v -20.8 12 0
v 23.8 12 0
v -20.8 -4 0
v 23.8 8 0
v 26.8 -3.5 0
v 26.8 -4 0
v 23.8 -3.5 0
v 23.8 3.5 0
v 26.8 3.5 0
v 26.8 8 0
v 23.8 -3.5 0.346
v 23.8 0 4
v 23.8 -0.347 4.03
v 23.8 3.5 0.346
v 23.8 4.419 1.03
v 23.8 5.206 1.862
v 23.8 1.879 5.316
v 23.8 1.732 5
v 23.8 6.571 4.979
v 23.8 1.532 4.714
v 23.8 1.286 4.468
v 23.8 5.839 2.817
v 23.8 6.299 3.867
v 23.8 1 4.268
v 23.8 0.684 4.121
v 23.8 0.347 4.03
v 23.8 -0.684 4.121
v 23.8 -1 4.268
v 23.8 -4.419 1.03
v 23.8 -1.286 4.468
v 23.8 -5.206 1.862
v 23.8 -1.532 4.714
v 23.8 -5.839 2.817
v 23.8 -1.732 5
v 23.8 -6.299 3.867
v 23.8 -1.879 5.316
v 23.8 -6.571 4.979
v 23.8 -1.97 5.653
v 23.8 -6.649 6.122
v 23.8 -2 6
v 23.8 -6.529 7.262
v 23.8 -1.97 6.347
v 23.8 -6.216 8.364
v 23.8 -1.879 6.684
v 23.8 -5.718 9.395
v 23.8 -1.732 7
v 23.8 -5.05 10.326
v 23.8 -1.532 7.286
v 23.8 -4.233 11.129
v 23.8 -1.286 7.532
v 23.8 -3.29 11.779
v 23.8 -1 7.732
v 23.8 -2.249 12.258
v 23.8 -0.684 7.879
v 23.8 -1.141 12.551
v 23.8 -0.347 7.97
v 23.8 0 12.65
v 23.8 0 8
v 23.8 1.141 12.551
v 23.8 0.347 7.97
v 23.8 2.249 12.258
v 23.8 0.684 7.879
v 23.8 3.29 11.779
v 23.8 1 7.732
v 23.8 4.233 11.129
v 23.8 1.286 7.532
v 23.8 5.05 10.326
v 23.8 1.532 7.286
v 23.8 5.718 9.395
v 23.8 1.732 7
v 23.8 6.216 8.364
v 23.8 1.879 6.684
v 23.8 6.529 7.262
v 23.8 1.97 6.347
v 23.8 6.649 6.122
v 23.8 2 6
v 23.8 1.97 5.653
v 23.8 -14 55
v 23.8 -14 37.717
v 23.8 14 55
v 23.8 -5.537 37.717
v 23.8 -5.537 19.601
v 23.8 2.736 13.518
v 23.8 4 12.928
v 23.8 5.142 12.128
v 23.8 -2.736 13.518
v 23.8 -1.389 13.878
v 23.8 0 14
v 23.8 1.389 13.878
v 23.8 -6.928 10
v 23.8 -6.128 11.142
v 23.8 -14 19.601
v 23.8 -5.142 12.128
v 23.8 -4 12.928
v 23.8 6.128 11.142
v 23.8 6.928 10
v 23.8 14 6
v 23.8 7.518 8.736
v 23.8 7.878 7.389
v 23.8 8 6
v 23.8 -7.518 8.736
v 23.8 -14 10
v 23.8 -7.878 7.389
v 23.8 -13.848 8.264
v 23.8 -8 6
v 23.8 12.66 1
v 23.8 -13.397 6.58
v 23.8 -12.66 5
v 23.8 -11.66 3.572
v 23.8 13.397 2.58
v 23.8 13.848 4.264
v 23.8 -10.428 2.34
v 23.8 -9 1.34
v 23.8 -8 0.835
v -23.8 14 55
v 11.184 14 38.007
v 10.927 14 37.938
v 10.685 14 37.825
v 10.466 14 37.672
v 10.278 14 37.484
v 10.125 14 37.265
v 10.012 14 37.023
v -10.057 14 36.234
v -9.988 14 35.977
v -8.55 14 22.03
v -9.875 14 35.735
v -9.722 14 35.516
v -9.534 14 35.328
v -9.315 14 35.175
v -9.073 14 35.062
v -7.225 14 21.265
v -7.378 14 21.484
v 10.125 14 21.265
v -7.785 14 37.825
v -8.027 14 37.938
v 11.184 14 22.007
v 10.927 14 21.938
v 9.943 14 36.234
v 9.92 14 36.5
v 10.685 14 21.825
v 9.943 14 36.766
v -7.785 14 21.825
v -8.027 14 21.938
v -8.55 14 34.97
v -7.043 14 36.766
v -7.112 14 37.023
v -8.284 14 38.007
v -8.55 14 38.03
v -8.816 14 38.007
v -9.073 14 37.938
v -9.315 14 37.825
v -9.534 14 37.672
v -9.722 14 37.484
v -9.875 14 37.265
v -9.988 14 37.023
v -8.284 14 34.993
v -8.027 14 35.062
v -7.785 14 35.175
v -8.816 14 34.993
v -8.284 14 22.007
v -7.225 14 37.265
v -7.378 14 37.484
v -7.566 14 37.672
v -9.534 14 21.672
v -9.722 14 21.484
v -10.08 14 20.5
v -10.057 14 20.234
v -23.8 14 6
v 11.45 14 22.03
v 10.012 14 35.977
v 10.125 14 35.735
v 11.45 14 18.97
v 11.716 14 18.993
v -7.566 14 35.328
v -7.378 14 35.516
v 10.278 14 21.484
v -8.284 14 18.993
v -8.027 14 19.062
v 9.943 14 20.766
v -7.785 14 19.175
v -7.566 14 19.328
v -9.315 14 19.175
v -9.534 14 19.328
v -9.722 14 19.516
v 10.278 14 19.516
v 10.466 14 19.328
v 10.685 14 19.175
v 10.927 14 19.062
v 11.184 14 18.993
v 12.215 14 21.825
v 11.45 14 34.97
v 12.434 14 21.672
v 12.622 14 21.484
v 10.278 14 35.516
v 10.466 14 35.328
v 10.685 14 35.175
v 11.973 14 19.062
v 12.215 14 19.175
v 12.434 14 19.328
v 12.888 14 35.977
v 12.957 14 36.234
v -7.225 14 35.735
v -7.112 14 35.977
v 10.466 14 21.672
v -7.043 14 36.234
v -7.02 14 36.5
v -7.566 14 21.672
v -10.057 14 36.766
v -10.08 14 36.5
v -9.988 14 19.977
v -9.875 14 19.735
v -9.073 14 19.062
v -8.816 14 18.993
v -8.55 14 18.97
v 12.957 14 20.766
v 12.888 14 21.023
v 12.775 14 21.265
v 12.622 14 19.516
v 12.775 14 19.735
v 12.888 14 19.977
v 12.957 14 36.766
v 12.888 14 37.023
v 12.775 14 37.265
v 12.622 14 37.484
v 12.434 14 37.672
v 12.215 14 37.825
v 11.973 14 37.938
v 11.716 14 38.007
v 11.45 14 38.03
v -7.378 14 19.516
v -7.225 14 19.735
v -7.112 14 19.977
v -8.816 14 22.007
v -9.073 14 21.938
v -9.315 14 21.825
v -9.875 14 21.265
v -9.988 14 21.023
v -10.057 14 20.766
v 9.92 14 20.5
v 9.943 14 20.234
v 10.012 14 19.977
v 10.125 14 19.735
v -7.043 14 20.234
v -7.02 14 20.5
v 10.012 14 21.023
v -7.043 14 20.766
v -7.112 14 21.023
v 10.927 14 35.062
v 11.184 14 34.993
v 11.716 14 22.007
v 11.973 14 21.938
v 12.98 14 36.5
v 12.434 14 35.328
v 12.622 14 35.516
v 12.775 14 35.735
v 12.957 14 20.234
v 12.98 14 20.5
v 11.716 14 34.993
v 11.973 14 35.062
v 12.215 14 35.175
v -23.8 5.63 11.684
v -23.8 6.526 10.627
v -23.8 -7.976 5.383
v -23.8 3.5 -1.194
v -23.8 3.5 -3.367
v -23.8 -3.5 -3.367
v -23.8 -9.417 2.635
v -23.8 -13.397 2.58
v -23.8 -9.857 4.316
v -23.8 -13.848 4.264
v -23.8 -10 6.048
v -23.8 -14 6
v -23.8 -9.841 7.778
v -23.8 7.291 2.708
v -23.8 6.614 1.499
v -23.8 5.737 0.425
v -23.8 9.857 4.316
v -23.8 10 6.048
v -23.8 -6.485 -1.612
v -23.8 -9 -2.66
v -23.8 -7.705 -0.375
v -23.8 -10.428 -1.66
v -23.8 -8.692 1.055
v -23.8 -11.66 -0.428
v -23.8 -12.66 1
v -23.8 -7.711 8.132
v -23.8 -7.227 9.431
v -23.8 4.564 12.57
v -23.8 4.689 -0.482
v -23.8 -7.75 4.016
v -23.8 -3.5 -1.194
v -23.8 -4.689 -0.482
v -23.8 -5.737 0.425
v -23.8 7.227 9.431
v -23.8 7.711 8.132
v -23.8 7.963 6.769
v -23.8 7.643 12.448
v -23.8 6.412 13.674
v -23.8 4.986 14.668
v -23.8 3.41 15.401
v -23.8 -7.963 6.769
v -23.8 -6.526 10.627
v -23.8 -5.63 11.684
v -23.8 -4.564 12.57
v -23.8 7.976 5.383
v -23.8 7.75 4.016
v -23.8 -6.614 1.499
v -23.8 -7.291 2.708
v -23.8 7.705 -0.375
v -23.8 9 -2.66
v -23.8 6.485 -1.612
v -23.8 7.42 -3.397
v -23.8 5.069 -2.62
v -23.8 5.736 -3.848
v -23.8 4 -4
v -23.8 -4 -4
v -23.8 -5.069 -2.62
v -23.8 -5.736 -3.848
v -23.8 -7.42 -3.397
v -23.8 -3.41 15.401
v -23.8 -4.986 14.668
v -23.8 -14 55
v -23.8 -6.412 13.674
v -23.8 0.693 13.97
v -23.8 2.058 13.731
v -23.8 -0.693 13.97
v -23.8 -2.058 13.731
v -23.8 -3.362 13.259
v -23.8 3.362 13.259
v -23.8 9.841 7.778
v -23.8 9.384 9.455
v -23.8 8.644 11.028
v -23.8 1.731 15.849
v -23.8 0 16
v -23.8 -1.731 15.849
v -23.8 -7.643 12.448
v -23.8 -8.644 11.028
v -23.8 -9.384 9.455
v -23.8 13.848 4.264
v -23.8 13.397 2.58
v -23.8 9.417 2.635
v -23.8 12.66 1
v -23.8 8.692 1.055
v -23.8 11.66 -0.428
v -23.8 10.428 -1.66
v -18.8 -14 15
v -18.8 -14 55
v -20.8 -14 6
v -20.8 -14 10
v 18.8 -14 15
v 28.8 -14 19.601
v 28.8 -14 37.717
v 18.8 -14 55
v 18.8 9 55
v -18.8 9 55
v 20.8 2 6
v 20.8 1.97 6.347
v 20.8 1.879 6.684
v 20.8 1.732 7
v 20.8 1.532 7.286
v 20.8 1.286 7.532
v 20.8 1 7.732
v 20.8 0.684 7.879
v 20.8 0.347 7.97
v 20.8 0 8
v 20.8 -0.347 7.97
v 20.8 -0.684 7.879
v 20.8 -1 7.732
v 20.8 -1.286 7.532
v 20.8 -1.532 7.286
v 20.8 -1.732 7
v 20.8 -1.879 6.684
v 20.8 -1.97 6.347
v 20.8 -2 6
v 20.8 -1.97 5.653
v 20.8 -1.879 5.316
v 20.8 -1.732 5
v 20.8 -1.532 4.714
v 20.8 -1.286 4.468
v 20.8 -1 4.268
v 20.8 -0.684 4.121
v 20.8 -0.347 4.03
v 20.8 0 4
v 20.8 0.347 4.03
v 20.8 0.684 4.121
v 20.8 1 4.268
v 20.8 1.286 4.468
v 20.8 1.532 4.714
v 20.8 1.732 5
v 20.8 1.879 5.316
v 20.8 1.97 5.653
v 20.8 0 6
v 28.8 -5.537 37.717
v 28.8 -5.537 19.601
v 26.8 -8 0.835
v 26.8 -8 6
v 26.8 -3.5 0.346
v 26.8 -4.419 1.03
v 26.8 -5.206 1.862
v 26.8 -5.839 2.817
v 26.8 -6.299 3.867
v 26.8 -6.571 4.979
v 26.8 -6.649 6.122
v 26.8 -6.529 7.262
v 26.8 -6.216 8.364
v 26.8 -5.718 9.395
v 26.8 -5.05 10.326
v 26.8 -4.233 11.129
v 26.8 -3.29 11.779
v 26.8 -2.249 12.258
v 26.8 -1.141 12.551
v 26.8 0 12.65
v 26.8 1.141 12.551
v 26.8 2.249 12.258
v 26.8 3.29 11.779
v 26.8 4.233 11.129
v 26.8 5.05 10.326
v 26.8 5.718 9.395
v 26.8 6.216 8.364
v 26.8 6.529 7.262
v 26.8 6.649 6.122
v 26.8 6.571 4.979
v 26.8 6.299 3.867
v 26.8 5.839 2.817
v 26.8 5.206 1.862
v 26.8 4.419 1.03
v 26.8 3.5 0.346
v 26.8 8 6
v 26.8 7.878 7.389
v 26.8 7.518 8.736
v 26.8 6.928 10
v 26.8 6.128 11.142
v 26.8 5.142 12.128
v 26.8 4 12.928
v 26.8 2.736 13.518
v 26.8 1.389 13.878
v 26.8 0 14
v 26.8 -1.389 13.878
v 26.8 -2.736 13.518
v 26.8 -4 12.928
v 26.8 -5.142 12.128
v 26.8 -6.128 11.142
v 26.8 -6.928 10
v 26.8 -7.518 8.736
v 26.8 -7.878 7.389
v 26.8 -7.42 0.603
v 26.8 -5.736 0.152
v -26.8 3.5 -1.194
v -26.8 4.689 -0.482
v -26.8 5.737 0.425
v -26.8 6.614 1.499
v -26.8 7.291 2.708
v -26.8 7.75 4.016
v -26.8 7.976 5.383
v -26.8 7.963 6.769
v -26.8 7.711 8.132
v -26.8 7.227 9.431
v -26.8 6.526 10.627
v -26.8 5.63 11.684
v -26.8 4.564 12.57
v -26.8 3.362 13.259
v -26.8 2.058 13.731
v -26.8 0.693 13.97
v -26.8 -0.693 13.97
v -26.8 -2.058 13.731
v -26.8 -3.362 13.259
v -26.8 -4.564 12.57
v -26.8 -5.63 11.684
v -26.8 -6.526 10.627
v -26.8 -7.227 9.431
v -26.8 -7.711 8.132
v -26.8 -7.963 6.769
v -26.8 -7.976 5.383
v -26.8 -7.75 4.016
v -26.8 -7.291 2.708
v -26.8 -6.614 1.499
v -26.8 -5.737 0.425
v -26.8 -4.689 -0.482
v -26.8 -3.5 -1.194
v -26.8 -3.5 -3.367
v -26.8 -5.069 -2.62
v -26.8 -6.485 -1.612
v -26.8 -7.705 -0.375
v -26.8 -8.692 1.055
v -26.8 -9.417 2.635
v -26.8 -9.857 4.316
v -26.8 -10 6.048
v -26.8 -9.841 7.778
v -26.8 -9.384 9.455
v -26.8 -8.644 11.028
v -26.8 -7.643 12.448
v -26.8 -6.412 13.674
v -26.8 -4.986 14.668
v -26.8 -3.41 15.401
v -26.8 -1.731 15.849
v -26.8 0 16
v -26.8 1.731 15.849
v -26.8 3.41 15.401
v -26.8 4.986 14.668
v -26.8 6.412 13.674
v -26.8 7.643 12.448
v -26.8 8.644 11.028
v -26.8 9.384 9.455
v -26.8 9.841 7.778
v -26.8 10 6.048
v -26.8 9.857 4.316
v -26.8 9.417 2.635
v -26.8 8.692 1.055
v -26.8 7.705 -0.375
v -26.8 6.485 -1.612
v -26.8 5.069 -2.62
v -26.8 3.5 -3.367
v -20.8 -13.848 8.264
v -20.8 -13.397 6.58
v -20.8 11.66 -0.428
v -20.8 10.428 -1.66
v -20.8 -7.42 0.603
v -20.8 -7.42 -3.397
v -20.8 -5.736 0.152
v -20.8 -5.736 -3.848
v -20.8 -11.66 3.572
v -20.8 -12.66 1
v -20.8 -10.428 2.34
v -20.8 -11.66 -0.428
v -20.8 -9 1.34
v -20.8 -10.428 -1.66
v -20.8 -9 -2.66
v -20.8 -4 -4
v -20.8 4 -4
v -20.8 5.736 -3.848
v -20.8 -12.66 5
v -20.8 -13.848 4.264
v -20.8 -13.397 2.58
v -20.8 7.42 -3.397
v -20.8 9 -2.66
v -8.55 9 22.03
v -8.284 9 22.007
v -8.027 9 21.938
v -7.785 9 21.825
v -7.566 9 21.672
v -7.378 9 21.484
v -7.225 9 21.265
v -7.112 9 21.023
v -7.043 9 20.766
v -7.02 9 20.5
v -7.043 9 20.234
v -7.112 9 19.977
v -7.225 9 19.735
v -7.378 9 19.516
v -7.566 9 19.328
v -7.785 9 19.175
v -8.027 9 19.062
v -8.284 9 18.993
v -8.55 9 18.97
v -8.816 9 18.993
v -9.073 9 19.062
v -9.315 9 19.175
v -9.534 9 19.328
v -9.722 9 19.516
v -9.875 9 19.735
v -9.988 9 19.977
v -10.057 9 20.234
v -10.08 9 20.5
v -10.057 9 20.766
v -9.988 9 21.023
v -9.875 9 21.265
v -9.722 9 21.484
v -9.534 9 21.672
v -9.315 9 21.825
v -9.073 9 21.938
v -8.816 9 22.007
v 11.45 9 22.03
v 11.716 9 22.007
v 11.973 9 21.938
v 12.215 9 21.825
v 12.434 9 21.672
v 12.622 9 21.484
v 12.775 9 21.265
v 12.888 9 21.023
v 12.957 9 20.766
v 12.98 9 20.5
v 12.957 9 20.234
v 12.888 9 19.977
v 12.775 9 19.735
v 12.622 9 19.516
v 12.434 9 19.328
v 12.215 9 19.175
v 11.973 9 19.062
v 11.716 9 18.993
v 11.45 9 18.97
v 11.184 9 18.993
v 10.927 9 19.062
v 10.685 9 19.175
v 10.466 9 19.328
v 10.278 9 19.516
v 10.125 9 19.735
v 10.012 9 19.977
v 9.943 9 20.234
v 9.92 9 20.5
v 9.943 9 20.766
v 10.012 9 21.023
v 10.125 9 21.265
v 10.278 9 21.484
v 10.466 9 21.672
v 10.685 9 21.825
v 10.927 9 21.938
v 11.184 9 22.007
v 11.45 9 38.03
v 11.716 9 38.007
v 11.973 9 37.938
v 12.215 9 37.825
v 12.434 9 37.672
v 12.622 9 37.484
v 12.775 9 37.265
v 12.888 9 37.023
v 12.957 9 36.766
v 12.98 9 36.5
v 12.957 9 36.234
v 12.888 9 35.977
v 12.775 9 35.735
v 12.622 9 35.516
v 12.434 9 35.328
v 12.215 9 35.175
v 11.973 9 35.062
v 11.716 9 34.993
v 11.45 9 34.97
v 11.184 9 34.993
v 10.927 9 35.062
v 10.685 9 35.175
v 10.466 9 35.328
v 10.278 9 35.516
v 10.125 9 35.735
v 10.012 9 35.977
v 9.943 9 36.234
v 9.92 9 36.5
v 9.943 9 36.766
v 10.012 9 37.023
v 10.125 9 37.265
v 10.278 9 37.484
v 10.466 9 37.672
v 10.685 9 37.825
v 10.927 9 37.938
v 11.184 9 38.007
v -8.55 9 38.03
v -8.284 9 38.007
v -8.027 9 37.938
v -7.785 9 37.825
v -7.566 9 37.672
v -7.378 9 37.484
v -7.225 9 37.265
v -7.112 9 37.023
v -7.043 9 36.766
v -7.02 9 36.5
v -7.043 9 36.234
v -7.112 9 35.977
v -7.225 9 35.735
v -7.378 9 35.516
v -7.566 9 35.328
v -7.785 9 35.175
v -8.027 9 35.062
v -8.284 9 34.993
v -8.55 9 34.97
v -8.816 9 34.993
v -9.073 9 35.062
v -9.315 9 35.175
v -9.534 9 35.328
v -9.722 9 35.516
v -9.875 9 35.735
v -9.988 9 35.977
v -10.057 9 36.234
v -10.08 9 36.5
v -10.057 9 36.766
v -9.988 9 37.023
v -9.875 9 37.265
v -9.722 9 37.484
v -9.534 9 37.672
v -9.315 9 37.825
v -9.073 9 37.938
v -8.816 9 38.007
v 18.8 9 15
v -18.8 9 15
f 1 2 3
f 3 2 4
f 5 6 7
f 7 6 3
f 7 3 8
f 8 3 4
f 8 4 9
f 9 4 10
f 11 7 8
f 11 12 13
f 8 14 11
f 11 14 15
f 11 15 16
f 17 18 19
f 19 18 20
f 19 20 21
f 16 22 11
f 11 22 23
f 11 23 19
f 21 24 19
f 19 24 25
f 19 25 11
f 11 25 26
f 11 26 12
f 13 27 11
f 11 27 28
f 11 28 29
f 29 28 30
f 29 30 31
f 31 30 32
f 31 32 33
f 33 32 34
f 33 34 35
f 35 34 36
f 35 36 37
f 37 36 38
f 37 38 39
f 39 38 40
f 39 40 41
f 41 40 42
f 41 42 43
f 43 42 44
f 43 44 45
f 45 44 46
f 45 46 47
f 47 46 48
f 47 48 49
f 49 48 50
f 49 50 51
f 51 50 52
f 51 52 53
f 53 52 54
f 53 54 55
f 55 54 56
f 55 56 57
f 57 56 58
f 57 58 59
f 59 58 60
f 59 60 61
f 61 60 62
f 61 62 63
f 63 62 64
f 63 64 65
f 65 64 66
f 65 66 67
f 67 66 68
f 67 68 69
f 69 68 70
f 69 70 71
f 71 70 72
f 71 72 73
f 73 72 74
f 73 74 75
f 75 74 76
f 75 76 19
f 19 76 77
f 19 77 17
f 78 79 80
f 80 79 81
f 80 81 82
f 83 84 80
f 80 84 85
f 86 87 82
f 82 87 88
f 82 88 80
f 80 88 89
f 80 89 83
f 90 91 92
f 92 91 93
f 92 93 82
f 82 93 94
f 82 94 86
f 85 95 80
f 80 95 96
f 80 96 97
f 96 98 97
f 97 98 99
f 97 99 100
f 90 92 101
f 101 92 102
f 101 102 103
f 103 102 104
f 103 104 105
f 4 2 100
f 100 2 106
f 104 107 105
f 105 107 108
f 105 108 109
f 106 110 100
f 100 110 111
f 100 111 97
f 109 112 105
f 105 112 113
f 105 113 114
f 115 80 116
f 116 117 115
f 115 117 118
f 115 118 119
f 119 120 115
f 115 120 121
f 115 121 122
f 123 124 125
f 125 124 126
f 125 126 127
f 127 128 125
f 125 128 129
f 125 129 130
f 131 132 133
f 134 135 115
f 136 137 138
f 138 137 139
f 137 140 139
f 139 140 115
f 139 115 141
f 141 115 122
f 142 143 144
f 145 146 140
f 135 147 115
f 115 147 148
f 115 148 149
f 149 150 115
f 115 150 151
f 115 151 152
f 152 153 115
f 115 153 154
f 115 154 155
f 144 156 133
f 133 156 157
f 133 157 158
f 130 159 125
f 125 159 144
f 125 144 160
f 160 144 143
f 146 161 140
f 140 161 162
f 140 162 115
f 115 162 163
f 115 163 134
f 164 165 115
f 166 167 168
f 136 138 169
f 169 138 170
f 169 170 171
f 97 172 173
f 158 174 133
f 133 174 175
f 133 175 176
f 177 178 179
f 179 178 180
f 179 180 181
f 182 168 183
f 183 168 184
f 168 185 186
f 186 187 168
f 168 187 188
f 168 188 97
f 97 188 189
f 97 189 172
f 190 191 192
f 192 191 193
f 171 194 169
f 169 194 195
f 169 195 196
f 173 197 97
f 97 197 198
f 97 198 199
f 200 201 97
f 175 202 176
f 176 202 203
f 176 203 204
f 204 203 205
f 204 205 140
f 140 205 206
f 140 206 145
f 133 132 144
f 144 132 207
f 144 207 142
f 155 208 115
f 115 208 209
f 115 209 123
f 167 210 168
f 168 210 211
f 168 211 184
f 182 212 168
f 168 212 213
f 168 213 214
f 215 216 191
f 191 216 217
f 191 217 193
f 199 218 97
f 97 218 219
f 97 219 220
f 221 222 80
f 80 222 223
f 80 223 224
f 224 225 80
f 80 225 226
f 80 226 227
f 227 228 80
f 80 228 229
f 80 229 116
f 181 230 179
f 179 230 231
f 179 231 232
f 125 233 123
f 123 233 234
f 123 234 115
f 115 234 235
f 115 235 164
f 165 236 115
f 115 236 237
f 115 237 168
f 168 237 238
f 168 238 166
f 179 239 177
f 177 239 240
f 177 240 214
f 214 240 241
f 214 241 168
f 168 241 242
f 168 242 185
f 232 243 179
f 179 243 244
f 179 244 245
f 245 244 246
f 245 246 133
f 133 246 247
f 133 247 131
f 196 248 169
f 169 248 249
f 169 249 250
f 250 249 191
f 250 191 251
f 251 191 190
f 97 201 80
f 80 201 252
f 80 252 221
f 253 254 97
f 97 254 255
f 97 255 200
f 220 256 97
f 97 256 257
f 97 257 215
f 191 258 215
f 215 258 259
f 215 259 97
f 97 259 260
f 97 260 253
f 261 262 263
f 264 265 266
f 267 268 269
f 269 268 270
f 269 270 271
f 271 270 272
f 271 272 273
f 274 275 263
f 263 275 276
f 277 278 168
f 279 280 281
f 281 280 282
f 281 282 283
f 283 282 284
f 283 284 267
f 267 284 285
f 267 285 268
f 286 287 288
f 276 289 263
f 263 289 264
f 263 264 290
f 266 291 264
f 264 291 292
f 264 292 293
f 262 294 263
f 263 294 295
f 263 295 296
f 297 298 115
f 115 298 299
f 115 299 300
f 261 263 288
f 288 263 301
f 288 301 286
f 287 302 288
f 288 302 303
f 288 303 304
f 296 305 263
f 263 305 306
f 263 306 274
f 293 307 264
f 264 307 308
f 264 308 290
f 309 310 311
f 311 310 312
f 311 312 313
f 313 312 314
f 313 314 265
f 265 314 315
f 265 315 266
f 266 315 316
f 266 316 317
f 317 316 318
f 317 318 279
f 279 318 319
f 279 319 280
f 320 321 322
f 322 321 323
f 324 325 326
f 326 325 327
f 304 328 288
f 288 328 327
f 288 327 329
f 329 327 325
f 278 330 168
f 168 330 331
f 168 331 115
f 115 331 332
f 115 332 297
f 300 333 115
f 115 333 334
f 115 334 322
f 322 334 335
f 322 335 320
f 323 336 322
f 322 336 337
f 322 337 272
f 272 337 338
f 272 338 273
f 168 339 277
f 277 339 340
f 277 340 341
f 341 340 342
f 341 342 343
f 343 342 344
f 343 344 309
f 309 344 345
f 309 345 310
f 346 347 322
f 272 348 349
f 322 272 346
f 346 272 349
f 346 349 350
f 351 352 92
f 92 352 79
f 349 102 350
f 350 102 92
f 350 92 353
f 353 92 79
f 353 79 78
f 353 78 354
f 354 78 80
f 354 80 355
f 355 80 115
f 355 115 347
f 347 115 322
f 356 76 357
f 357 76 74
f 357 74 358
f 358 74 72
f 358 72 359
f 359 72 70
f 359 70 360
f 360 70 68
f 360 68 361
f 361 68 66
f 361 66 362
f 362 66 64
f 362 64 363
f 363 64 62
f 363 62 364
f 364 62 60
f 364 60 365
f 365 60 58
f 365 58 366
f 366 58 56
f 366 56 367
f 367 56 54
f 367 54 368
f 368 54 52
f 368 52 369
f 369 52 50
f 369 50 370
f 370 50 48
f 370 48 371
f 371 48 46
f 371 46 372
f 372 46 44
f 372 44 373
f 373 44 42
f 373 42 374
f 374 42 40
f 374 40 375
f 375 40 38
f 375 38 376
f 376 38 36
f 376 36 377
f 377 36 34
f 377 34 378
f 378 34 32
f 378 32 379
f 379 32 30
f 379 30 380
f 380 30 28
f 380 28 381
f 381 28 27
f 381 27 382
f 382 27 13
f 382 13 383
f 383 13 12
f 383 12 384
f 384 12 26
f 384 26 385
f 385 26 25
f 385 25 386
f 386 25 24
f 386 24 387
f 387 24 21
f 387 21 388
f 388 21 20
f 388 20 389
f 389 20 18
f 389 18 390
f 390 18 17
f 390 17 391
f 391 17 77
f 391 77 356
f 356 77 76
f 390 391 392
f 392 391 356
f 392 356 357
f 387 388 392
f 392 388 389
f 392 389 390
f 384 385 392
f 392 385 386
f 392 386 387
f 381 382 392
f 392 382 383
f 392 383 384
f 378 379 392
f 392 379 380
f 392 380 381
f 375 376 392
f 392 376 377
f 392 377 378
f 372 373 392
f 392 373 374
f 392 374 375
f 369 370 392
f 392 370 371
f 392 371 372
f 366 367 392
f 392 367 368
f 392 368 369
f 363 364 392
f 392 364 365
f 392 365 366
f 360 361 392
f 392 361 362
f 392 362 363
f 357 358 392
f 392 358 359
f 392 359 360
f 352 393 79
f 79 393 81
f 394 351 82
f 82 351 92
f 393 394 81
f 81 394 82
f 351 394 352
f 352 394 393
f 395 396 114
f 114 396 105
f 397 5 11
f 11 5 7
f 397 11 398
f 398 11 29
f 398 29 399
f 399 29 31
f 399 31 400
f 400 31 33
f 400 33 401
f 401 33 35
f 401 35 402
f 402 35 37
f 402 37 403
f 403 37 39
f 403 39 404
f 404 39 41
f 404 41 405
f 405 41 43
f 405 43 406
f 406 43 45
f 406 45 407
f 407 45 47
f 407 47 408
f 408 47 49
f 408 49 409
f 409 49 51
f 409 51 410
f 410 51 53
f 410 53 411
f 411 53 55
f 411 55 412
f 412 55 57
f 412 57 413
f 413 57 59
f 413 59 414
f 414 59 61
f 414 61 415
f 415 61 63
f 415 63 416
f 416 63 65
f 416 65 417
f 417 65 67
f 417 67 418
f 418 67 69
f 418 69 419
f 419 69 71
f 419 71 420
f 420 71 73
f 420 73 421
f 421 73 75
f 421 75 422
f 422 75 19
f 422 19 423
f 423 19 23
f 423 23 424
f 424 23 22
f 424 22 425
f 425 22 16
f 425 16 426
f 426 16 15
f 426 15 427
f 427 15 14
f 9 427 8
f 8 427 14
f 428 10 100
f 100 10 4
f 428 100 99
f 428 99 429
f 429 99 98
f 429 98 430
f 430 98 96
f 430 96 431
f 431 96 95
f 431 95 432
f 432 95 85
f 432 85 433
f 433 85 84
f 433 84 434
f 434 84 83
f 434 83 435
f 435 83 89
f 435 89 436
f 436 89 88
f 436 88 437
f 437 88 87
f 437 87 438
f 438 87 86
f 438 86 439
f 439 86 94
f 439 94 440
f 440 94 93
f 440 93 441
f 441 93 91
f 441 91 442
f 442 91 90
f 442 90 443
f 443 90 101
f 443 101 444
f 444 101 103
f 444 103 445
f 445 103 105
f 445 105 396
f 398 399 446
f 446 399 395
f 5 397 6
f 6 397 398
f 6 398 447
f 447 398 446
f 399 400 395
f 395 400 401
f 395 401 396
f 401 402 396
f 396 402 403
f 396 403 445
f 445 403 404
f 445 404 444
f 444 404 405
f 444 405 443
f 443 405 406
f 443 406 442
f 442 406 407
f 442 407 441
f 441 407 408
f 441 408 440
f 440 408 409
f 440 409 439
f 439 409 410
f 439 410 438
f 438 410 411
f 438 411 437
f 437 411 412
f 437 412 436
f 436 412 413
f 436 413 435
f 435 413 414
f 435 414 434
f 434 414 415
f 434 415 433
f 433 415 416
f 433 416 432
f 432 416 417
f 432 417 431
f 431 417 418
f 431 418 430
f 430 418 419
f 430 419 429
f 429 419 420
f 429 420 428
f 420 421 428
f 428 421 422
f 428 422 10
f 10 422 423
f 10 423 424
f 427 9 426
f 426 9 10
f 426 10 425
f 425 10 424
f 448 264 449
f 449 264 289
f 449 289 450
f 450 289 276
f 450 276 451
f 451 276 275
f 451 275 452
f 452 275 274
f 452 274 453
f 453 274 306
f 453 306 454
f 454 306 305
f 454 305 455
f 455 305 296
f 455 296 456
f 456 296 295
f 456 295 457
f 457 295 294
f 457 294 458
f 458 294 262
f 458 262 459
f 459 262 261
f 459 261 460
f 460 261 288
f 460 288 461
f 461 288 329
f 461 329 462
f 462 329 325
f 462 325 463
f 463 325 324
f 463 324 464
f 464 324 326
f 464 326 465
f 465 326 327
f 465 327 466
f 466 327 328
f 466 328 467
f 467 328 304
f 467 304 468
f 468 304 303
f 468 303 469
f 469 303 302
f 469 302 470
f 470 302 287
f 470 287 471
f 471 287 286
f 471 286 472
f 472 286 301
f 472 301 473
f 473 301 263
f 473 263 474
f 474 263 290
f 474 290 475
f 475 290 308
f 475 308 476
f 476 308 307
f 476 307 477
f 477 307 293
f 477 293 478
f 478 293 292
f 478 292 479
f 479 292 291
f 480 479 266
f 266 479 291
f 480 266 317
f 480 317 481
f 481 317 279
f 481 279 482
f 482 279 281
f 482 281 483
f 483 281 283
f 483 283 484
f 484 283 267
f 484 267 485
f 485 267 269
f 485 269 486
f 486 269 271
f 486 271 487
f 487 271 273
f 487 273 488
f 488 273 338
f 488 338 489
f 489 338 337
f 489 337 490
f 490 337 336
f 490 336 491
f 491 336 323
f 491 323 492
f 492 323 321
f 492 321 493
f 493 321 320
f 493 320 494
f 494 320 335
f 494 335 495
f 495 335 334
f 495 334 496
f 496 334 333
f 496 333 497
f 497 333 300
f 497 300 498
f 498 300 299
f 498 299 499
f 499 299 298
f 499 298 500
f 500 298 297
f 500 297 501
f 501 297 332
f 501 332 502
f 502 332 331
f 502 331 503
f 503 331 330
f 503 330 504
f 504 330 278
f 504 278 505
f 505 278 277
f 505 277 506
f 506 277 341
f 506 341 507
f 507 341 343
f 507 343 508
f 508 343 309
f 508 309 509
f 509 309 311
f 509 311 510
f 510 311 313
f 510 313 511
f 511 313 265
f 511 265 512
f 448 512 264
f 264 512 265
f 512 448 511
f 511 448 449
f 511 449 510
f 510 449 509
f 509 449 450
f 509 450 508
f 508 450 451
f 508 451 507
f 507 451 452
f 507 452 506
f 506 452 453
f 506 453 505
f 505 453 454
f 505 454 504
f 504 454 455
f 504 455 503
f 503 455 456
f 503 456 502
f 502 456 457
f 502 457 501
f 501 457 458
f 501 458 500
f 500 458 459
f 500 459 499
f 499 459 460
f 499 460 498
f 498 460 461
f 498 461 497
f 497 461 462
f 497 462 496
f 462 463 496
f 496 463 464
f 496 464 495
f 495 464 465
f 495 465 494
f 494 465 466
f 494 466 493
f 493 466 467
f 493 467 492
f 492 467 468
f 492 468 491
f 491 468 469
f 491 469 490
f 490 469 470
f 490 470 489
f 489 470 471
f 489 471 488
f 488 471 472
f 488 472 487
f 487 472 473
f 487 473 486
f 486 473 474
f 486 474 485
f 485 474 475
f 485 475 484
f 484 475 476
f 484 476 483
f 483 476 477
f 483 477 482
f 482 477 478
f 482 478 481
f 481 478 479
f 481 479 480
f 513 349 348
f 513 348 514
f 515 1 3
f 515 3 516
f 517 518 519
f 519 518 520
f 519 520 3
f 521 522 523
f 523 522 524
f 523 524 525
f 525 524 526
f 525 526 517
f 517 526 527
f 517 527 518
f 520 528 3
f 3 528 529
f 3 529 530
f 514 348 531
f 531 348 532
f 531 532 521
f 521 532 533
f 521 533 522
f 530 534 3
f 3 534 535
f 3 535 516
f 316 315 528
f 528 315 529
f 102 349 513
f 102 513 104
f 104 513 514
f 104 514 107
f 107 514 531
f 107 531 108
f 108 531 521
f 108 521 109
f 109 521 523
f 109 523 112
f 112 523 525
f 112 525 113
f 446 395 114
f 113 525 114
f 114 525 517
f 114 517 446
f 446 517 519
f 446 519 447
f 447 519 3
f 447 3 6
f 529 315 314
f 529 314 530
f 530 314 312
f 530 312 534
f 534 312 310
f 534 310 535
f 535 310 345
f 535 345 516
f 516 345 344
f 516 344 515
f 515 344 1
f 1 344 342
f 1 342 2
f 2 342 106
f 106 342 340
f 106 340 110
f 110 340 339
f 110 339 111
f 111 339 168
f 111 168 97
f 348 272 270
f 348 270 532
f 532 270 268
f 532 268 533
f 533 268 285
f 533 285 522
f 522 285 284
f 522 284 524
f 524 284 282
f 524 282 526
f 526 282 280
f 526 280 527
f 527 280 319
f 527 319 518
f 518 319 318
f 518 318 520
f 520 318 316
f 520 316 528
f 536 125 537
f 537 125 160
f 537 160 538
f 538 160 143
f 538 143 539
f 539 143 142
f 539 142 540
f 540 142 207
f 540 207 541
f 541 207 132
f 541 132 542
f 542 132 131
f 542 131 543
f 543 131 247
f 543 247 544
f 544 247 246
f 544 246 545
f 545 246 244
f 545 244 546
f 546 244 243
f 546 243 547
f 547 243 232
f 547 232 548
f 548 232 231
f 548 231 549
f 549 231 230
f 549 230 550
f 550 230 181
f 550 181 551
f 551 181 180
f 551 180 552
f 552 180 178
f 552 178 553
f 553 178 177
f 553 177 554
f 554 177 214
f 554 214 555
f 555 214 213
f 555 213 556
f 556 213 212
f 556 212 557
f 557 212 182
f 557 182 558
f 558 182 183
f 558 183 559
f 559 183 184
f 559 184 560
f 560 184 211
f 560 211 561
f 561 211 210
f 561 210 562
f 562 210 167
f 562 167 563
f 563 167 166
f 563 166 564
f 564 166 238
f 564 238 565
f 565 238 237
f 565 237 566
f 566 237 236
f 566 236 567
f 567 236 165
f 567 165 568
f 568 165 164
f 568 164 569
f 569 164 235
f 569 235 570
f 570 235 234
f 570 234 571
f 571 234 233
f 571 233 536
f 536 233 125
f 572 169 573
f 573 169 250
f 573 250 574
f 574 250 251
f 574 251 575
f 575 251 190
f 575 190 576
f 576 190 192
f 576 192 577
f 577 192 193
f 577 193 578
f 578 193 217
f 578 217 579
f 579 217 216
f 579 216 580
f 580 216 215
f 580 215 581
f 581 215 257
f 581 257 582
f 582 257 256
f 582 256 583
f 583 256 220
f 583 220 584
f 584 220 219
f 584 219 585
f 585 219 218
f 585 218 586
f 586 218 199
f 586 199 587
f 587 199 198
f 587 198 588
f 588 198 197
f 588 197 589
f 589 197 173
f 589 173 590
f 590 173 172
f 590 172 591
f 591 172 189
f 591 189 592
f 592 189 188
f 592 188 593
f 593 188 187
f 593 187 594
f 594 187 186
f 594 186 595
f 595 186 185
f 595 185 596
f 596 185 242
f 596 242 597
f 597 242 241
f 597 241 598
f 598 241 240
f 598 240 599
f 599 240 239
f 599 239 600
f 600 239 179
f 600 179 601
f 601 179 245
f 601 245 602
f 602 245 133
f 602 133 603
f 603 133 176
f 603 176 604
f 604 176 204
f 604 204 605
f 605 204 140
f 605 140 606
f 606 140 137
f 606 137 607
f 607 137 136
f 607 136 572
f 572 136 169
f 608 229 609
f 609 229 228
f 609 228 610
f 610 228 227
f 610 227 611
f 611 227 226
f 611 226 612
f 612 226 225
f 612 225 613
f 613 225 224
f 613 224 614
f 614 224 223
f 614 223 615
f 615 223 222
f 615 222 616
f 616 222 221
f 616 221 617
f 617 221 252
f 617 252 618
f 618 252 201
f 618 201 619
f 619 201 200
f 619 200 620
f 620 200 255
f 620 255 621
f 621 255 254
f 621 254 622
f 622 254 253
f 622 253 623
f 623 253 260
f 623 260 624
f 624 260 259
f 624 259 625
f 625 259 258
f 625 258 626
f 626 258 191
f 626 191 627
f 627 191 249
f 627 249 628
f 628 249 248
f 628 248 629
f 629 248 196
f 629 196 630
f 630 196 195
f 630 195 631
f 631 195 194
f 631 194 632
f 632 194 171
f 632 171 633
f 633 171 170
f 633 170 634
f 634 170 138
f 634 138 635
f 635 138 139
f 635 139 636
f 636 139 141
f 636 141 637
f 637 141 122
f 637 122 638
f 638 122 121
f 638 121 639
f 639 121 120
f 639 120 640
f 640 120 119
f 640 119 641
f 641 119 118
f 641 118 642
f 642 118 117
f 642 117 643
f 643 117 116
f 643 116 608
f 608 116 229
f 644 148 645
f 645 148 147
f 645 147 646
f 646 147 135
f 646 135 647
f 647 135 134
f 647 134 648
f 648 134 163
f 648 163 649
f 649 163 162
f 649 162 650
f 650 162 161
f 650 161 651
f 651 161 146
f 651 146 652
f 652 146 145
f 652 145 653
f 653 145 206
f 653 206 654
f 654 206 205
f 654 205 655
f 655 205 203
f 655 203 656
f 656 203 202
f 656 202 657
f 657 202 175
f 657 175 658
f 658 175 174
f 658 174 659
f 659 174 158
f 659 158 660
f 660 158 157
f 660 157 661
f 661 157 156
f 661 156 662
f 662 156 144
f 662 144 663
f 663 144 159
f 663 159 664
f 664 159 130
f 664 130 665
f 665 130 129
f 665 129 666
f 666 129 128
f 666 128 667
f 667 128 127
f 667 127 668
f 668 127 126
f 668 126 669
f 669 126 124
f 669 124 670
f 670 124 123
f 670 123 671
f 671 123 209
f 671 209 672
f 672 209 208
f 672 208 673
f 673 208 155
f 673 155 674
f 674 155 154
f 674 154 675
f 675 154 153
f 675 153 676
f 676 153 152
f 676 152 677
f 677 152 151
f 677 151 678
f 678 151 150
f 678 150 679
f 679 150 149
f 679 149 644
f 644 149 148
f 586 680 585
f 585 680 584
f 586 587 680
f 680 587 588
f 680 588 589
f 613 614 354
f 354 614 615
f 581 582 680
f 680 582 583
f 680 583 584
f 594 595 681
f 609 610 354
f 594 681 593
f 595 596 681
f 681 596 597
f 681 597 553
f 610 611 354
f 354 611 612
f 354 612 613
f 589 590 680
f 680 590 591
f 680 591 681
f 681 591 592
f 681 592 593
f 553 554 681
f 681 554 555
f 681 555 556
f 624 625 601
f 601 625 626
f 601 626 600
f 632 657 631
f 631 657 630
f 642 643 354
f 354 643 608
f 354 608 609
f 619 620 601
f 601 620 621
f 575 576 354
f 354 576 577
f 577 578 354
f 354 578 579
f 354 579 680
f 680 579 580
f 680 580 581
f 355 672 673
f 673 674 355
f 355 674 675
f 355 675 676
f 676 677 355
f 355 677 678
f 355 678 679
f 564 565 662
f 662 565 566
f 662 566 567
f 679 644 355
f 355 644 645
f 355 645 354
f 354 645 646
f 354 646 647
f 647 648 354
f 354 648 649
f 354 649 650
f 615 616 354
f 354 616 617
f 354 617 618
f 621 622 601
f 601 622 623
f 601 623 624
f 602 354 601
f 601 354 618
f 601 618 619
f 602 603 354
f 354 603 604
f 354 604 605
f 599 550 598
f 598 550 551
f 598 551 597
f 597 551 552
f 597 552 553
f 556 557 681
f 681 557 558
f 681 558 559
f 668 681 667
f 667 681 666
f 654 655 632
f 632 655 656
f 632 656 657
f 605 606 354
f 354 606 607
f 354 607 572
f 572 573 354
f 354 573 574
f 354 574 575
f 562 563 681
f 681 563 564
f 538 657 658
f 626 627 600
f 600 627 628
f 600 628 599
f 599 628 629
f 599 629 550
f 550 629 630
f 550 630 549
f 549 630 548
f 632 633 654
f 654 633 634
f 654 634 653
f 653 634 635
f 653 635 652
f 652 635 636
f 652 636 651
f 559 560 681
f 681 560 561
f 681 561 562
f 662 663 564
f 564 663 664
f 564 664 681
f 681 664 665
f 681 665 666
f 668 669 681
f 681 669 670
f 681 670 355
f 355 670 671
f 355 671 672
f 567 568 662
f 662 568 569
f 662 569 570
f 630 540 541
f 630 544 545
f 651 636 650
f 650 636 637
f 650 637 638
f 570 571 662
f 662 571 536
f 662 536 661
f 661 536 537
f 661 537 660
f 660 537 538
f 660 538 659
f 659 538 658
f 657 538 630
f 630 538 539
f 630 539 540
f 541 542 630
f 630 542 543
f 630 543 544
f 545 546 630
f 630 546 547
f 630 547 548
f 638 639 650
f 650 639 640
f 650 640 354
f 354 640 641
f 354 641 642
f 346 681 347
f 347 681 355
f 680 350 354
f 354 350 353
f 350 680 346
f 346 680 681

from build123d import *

# Parameters (mm, degrees)
SKETCH1_W           = 47.6
SKETCH1_H           = 28
BOSS_EXTRUDE1_DEPTH = 55
SKETCH3_R           = 2
CUT_EXTRUDE1_DEPTH  = 3
SKETCH4_W           = 18.116069914
SKETCH4_H           = 8.463303816
BOSS_EXTRUDE2_DEPTH = 5
BOSS_EXTRUDE4_DEPTH = 3
BOSS_EXTRUDE5_DEPTH = 3
SKETCH8_W           = 3
SKETCH8_H           = 28
BOSS_EXTRUDE7_DEPTH = 4
FILLET1_R           = 10
FILLET2_R           = 10
SKETCH9_R           = 1.530150167
CUT_EXTRUDE2_DEPTH  = 69.106093707
SKETCH10_W          = 37.6
SKETCH10_H          = 23
CUT_EXTRUDE4_DEPTH  = 40


with BuildPart() as part:
    # Sketch1 → Boss-Extrude1 (new body)
    with BuildSketch(Plane.XY):
        Rectangle(SKETCH1_W, SKETCH1_H)
    extrude(amount=BOSS_EXTRUDE1_DEPTH)

    # Sketch3 → Cut-Extrude1 (cut)
    with BuildSketch(Plane(origin=(23.8, 0, 0), x_dir=(0, 0, -1), z_dir=(1, 0, 0))):
        with Locations(Location((-6, 0, 0), (0, 0, 90))):
            Circle(SKETCH3_R)
    extrude(amount=-CUT_EXTRUDE1_DEPTH, mode=Mode.SUBTRACT)

    # Sketch4 → Boss-Extrude2 (add)
    with BuildSketch(Plane(origin=(23.8, 0, 0), x_dir=(0, 0, -1), z_dir=(1, 0, 0))):
        with Locations((-28.659392832, -9.768348092)):
            Rectangle(SKETCH4_W, SKETCH4_H)
    extrude(amount=BOSS_EXTRUDE2_DEPTH)

    # Sketch5 → Boss-Extrude4 (add)
    with BuildSketch(Plane(origin=(23.8, 0, 0), x_dir=(0, 0, -1), z_dir=(1, 0, 0))):
        with BuildLine():
            Line((-0.345576953, 3.5), (0, 3.5))
            Line((0, 3.5), (0, 8))
            Line((0, 8), (-6, 8))
            ThreePointArc((-6, 8), (-14, 0), (-6, -8))
            Line((-6, -8), (0, -8))
            Line((0, -8), (0, -3.5))
            Line((0, -3.5), (-0.345576953, -3.5))
            ThreePointArc((-0.345576953, -3.5), (-12.65, 0), (-0.345576953, 3.5))
        make_face()
    extrude(amount=BOSS_EXTRUDE4_DEPTH)

    # Sketch6 → Boss-Extrude5 (add)
    with BuildSketch(Plane.ZY.offset(23.8)):
        with BuildLine():
            Line((0, 8), (0, 5.291502622))
            ThreePointArc((0, 5.291502622), (8.828427125, 7.483314774), (14, 0))
            ThreePointArc((14, 0), (8.828427125, -7.483314774), (0, -5.291502622))
            Line((0, -5.291502622), (0, -8))
            ThreePointArc((0, -8), (10.472135955, -8.94427191), (16, 0))
            ThreePointArc((16, 0), (10.472135955, 8.94427191), (0, 8))
        make_face()
        with BuildLine():
            ThreePointArc((0, -5.291502622), (-0.657410327, -4.436089239), (-1.193747285, -3.5))
            Line((-1.193747285, -3.5), (-3.367496998, -3.5))
            ThreePointArc((-3.367496998, -3.5), (-2.006403125, -5.991452996), (0, -8))
            Line((0, -8), (0, -5.291502622))
        make_face()
        with BuildLine():
            Line((-3.367496998, 3.5), (-1.193747285, 3.5))
            ThreePointArc((-1.193747285, 3.5), (-0.657410327, 4.436089239), (0, 5.291502622))
            Line((0, 5.291502622), (0, 8))
            ThreePointArc((0, 8), (-2.006403125, 5.991452996), (-3.367496998, 3.5))
        make_face()
    extrude(amount=BOSS_EXTRUDE5_DEPTH)

    # Sketch8 → Boss-Extrude7 (add)
    with BuildSketch(Plane(origin=(0, 0, 0), x_dir=(-1, 0, 0), z_dir=(0, 0, -1))):
        with Locations((22.3, 0)):
            Rectangle(SKETCH8_W, SKETCH8_H)
    extrude(amount=BOSS_EXTRUDE7_DEPTH)

    # Fillet1
    fillet1_edges = [part.edges().sort_by_distance(p)[0] for p in [
        (-22.3, 14, -4),
        (1.5, -14, 0),
    ]]
    fillet(fillet1_edges, radius=FILLET1_R)

    # Fillet2
    fillet2_edges = [part.edges().sort_by_distance(p)[0] for p in [
        (-22.3, -14, -4),
    ]]
    fillet(fillet2_edges, radius=FILLET2_R)

    # Sketch9 → Cut-Extrude2 (cut, through all)
    with BuildSketch(Plane(origin=(0, 14, 0), x_dir=(1, 0, 0), z_dir=(0, 1, 0))):
        with Locations(Location((-8.55, -20.5, 0), (0, 0, 270))):
            Circle(SKETCH9_R)
        with Locations(Location((11.45, -20.5, 0), (0, 0, 270))):
            Circle(SKETCH9_R)
        with Locations(Location((11.45, -36.5, 0), (0, 0, 270))):
            Circle(SKETCH9_R)
        with Locations(Location((-8.55, -36.5, 0), (0, 0, 270))):
            Circle(SKETCH9_R)
    extrude(amount=-CUT_EXTRUDE2_DEPTH, mode=Mode.SUBTRACT)

    # Sketch10 → Cut-Extrude4 (cut)
    with BuildSketch(Plane.XY.offset(55)):
        with Locations((0, -2.5)):
            Rectangle(SKETCH10_W, SKETCH10_H)
    extrude(amount=-CUT_EXTRUDE4_DEPTH, mode=Mode.SUBTRACT)


solid = part.part
